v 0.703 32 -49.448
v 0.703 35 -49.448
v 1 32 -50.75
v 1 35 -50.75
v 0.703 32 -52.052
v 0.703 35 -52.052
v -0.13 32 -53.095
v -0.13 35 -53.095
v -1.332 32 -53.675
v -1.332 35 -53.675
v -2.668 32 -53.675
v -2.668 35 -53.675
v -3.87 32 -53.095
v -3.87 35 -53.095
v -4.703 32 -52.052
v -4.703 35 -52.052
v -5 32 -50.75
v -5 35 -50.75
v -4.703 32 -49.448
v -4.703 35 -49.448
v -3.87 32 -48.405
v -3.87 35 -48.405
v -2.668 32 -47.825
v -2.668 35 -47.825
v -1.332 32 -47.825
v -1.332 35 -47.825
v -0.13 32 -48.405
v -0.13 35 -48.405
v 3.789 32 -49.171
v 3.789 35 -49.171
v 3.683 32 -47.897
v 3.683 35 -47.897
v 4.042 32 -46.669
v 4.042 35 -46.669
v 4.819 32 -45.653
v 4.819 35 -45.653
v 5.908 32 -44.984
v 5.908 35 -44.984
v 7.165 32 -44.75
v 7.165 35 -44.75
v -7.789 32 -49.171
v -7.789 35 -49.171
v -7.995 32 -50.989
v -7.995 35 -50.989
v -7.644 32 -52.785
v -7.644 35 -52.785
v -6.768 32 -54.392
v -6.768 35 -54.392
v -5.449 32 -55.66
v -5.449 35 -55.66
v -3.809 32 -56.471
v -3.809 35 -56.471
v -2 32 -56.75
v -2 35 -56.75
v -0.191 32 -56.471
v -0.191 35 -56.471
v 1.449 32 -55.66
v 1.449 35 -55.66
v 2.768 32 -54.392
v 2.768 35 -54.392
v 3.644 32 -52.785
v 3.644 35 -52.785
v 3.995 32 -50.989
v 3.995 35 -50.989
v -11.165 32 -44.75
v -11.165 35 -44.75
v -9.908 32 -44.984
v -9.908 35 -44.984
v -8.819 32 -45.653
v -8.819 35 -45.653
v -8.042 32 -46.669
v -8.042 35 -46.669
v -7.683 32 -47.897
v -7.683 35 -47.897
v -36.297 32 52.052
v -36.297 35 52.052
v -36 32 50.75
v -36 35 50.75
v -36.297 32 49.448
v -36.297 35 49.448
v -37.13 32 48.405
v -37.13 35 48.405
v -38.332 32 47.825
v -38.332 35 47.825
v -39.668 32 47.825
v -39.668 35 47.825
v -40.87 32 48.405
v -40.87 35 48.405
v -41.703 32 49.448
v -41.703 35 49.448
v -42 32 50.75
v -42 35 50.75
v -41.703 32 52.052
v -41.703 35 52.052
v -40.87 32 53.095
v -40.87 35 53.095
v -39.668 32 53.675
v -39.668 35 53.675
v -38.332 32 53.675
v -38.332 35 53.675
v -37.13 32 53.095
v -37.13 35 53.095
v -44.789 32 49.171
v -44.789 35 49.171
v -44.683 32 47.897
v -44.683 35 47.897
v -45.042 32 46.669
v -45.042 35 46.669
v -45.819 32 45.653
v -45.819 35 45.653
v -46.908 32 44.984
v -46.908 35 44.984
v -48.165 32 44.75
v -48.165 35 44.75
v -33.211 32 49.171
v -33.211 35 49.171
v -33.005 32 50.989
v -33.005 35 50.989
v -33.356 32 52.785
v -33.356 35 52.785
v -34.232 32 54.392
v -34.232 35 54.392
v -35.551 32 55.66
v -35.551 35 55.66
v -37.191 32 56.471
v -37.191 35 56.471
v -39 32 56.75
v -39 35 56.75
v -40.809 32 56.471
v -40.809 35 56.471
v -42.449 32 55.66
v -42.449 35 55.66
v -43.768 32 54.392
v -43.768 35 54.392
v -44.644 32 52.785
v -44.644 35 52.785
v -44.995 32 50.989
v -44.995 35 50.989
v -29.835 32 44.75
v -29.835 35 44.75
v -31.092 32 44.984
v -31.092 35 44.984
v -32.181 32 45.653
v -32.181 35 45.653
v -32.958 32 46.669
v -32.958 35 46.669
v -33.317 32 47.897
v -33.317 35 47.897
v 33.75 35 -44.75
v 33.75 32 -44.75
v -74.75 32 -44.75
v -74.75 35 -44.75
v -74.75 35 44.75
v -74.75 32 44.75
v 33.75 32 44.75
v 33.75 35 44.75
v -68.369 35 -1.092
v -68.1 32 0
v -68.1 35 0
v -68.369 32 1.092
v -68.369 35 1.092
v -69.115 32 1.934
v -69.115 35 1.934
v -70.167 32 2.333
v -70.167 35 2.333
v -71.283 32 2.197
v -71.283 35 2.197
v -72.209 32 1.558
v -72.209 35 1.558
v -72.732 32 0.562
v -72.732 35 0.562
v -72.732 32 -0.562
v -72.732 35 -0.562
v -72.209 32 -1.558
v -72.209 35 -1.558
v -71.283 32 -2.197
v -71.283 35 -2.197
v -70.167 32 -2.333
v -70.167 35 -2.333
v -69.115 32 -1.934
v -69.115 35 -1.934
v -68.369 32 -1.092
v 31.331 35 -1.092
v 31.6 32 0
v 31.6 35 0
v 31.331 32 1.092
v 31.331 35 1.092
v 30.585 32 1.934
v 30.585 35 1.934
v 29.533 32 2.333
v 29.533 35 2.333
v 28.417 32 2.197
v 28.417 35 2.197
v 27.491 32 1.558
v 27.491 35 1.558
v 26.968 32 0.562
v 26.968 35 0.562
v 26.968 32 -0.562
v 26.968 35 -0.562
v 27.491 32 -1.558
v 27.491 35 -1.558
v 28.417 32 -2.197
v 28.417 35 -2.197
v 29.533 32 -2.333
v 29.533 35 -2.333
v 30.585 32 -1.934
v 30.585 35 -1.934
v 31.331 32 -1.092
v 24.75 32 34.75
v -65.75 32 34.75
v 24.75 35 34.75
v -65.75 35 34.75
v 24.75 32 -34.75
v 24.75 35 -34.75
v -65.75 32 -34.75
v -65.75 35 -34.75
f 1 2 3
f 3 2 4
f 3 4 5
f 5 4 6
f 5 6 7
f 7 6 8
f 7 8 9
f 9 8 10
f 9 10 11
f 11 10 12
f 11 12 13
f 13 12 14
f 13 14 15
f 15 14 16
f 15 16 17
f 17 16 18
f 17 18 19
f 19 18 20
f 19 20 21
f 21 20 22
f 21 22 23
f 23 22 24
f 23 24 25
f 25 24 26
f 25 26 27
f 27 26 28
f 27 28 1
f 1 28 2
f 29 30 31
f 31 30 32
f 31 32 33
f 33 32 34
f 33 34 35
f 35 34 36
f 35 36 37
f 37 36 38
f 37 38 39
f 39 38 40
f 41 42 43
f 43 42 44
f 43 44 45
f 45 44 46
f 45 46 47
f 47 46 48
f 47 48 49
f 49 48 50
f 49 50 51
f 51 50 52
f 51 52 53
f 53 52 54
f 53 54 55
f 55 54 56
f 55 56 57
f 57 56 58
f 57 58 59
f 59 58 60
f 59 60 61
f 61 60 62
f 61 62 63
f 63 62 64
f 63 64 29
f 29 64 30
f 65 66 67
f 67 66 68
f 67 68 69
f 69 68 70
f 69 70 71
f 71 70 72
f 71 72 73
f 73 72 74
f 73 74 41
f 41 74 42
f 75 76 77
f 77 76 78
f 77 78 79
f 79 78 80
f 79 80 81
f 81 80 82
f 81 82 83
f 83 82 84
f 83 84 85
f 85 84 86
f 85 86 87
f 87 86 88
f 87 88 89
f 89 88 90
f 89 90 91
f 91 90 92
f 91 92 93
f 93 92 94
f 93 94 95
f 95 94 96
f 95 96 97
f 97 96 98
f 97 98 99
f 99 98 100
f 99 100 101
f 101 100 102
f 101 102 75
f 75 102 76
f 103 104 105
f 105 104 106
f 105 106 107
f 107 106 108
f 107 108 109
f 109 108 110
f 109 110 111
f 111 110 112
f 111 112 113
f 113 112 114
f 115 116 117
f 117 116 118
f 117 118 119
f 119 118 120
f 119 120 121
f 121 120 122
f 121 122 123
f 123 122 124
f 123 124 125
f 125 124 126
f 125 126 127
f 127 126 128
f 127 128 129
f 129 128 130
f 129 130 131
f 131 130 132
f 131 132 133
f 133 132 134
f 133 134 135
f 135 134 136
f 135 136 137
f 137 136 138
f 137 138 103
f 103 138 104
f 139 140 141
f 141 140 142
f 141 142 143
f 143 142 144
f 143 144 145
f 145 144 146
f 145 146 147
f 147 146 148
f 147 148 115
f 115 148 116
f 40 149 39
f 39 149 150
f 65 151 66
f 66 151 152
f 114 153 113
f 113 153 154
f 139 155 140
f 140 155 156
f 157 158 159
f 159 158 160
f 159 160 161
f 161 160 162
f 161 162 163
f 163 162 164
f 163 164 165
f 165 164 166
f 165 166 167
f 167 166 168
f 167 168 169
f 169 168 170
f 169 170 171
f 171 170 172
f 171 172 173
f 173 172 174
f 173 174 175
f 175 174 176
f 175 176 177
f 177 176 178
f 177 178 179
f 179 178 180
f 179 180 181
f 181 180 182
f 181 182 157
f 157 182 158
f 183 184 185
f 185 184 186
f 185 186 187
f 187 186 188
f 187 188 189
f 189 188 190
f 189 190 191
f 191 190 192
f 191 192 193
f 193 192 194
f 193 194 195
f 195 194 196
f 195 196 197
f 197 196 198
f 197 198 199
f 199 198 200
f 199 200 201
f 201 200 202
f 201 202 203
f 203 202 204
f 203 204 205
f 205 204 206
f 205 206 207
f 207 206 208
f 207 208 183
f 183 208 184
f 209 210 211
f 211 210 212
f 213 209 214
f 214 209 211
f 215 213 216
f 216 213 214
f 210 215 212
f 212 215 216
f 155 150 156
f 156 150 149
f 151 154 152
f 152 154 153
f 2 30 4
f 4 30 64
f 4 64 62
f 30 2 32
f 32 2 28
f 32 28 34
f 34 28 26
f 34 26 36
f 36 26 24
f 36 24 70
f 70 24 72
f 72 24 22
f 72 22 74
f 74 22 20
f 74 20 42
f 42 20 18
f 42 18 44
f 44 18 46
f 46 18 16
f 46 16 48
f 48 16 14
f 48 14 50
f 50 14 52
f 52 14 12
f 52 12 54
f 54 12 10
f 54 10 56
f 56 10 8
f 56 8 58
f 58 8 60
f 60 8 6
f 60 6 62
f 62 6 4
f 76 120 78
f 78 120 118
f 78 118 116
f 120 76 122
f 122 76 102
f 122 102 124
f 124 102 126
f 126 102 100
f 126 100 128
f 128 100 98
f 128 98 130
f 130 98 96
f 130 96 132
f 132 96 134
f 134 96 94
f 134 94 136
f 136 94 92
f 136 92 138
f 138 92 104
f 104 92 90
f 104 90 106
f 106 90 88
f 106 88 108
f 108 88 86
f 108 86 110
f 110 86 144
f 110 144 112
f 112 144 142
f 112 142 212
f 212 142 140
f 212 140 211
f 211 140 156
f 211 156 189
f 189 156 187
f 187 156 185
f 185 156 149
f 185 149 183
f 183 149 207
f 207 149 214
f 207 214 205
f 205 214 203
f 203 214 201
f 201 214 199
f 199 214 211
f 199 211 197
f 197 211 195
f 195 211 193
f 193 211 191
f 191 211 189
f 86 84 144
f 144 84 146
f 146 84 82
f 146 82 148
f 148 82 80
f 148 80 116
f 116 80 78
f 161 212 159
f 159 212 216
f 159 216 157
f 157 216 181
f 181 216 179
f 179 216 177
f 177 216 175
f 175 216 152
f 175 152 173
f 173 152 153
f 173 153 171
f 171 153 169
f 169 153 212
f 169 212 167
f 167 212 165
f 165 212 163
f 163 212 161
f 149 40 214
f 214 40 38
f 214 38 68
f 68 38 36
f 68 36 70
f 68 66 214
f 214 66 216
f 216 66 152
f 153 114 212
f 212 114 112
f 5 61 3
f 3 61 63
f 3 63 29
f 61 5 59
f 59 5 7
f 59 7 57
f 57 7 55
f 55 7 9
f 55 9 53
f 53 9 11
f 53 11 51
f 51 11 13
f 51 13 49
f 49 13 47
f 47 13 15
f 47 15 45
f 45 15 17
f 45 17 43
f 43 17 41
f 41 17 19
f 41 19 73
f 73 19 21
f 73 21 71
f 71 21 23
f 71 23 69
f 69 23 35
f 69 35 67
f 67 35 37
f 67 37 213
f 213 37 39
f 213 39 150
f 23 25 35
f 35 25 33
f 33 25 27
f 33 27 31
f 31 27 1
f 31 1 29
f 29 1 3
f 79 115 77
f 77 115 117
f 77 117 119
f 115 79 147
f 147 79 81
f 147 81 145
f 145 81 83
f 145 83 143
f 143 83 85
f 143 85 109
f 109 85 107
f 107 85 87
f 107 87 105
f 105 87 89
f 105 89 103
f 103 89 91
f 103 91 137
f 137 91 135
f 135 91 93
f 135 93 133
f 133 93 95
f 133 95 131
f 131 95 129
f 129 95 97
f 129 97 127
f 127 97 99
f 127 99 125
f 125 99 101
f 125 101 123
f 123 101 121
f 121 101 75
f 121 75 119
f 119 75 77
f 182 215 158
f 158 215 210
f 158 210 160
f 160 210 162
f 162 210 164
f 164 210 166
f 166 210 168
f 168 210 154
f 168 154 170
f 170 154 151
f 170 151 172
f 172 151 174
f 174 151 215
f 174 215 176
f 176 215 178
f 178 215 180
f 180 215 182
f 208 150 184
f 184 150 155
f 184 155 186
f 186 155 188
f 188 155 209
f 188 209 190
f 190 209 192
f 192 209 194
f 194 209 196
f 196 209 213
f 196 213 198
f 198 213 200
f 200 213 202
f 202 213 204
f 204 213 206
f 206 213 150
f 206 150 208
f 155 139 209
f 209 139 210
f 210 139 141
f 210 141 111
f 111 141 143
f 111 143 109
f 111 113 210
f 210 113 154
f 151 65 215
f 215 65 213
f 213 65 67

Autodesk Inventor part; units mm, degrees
ref_plane "YZ Plane" through (0, 0, 0) normal (1, 0, 0) x (0, 1, 0)
ref_plane "XY Plane" through (0, 0, 0) normal (0, 0, 1) x (1, 0, 0)
ref_plane "Work Plane4" through (0, 32, 0) normal (0, 1, 0) x (-1, 0, 0)
sketch "Sketch1" plane through (0, 0, 0) normal (0, 1, 0) x (-1, 0, 0)
  line L0 (33.75, 44.75) -> (-33.75, 44.75)
  line L1 (-33.75, 44.75) -> (-33.75, -44.75)
  line L2 (-33.75, -44.75) -> (33.75, -44.75)
  line L3 (33.75, -44.75) -> (33.75, 44.75)
  line L4 (21.75, -36.75) -> (-21.75, -36.75)
  line L5 (21.75, 36.75) -> (-21.75, 36.75)
  line L6 (21.75, 36.75) -> (21.75, -36.75)
  line L7 (-21.75, 36.75) -> (-21.75, -36.75)
  line L8 (33.75, -41.75) -> (-33.75, -41.75)
  line L9 (33.75, 41.75) -> (-33.75, 41.75)
  line L10 (-6.7955, 36.75) -> (21.75, 0)
  line L11 (21.75, 0) -> (0, -36.75)
  point P0 (0, 0)
  point P1 (-33.75, 0)
  dimension "d0" = 83.5
  dimension "d1" = 3
  dimension "d2" = 3
  dimension "d4" = 5
  dimension "d5" = 5
  dimension "d6" = 12
  dimension "d7" = 12
  dimension "d8" = 67.5
  dimension "d9" = 33.75
  dimension "d10" = 41.75
sketch "Sketch2" plane through (0, 32, 0) normal (0, 1, 0) x (1, 0, 0)
  line L0 (-65.75, 34.75) -> (24.75, 34.75)
  line L1 (-65.75, -34.75) -> (24.75, -34.75)
  line L2 (24.75, -34.75) -> (24.75, 34.75)
  line L3 (-65.75, -34.75) -> (-65.75, 34.75)
  line L4 (-74.75, -44.75) -> (-74.75, 44.75)
  line L5 (33.75, -44.75) -> (33.75, 44.75) projected
  line L6 (33.75, 44.75) -> (-33.75, 44.75) projected
  line L7 (-74.75, -44.75) -> (33.75, -44.75)
  line L8 (-74.75, 44.75) -> (33.75, 44.75)
  dimension "d94" = 69.5
  dimension "d96" = 90.5
  dimension "d97" = 9
  dimension "d98" = 9
  dimension "d99" = 10
  dimension "d100" = 10
extrude "Extrusion3" add sketch "Sketch2" along normal blind 3
sketch "Sketch3" plane through (0, 32, 0) normal (0, 1, 0) x (1, 0, 0)
  circle A0 centre (29.25, 0) radius 4.5
  circle A1 centre (-70.45, 0) radius 4.5
  circle A2 centre (-70.45, 0) radius 2.35
  circle A3 centre (29.25, 0) radius 2.35
  line L0 (33.75, -44.75) -> (33.75, 44.75)
  point P0 (0, 0)
  dimension "d24" = 9
  dimension "d27" = 4.7
  dimension "d43" = 99.7
  dimension "d44" = 4.5
extrude "Extrusion5" cut sketch "Sketch3" along normal blind 3 contours A2 | A3
sketch "Sketch9" plane through (0, 35, 0) normal (0, 1, 0) x (1, 0, 0)
  circle A0 centre (-39, -50.75) radius 3
  circle A1 centre (-39, -50.75) radius 6
  line L0 (-74.75, -44.75) -> (33.75, -44.75) projected
  circle A2 centre (-2, -50.75) radius 3
  circle A3 centre (-2, -50.75) radius 6
  arc A4 (7.1652, -44.75) -> (3.7885, -49.1711) centre (7.1652, -48.25) ccw
  arc A5 (-7.7885, -49.1711) -> (-11.1652, -44.75) centre (-11.1652, -48.25) ccw
  arc A6 (-29.8348, -44.75) -> (-33.2115, -49.1711) centre (-29.8348, -48.25) ccw
  arc A7 (-44.7885, -49.1711) -> (-48.1652, -44.75) centre (-48.1652, -48.25) ccw
  line L1 (33.75, -44.75) -> (33.75, 44.75) projected
  line L2 (-74.75, 44.75) -> (-74.75, -44.75) projected
  line L3 (64.0405, 0) -> (-151.031, 0) construction
  circle A8 centre (-39, 50.75) radius 3
  circle A9 centre (-39, 50.75) radius 6
  circle A10 centre (-2, 50.75) radius 3
  circle A11 centre (-2, 50.75) radius 6
  arc A12 (3.7885, 49.1711) -> (7.1652, 44.75) centre (7.1652, 48.25) ccw
  arc A13 (-11.1652, 44.75) -> (-7.7885, 49.1711) centre (-11.1652, 48.25) ccw
  arc A14 (-33.2115, 49.1711) -> (-29.8348, 44.75) centre (-29.8348, 48.25) ccw
  arc A15 (-48.1652, 44.75) -> (-44.7885, 49.1711) centre (-48.1652, 48.25) ccw
  line L4 (33.75, 44.75) -> (-74.75, 44.75) projected
  point P0 (0, 0)
  dimension "d101" = 6
  dimension "d102" = 12
  dimension "d103" = 37
  dimension "d104" = 7
  dimension "d105" = 108.5
  dimension "d106" = 35.75
extrude "Extrusion10" add sketch "Sketch9" against normal blind 3 contours A1 | A1 L0 A6 | A7 L0 A1 | L4 A11 A12 | A13 A11 L4 | A11
equation "\"d9\" = 0.5 * d8"
equation "\"d10\" = 0.5 * d0"
equation "\"d44\" = 0.5 * d24"
equation "\"d2\" = d1"
equation "\"d5\" = d4"
equation "\"d7\" = d6"
properties part number "CO-1-06-fuseMountTop"
